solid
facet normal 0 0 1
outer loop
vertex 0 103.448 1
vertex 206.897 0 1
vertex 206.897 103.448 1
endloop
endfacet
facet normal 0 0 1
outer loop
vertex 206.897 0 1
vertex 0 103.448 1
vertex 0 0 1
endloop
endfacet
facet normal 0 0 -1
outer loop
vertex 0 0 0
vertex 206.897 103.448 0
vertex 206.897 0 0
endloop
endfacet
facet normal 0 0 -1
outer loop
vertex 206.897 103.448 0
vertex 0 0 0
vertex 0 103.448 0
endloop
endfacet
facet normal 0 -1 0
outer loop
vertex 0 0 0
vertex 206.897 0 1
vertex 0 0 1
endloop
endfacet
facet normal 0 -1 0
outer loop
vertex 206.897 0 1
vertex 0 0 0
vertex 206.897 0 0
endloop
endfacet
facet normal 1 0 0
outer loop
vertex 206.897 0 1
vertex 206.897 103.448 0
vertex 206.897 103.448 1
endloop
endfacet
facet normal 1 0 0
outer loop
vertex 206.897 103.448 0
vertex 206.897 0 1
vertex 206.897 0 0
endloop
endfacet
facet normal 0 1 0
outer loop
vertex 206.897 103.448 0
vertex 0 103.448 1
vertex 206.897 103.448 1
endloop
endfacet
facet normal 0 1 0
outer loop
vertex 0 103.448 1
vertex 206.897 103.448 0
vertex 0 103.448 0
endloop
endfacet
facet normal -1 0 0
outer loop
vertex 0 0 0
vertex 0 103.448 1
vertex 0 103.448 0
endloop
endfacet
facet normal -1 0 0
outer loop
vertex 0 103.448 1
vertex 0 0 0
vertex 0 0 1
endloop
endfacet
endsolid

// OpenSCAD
/*
 * PROMPT: H0 scale (1:87) PRL-era police station flat roof panel, plain slab.
 * Parapet is integrated into the wall panels; roof is a plain flat rectangle.
 */

$fn = 32;

S       = 1/87;
panel_t = 1.0;

bld_w   = 18000*S;   // 206.9 mm
bld_d   = 9000*S;    // 103.4 mm

module roof_panel() {
    cube([bld_w, bld_d, panel_t]);
}

roof_panel();
